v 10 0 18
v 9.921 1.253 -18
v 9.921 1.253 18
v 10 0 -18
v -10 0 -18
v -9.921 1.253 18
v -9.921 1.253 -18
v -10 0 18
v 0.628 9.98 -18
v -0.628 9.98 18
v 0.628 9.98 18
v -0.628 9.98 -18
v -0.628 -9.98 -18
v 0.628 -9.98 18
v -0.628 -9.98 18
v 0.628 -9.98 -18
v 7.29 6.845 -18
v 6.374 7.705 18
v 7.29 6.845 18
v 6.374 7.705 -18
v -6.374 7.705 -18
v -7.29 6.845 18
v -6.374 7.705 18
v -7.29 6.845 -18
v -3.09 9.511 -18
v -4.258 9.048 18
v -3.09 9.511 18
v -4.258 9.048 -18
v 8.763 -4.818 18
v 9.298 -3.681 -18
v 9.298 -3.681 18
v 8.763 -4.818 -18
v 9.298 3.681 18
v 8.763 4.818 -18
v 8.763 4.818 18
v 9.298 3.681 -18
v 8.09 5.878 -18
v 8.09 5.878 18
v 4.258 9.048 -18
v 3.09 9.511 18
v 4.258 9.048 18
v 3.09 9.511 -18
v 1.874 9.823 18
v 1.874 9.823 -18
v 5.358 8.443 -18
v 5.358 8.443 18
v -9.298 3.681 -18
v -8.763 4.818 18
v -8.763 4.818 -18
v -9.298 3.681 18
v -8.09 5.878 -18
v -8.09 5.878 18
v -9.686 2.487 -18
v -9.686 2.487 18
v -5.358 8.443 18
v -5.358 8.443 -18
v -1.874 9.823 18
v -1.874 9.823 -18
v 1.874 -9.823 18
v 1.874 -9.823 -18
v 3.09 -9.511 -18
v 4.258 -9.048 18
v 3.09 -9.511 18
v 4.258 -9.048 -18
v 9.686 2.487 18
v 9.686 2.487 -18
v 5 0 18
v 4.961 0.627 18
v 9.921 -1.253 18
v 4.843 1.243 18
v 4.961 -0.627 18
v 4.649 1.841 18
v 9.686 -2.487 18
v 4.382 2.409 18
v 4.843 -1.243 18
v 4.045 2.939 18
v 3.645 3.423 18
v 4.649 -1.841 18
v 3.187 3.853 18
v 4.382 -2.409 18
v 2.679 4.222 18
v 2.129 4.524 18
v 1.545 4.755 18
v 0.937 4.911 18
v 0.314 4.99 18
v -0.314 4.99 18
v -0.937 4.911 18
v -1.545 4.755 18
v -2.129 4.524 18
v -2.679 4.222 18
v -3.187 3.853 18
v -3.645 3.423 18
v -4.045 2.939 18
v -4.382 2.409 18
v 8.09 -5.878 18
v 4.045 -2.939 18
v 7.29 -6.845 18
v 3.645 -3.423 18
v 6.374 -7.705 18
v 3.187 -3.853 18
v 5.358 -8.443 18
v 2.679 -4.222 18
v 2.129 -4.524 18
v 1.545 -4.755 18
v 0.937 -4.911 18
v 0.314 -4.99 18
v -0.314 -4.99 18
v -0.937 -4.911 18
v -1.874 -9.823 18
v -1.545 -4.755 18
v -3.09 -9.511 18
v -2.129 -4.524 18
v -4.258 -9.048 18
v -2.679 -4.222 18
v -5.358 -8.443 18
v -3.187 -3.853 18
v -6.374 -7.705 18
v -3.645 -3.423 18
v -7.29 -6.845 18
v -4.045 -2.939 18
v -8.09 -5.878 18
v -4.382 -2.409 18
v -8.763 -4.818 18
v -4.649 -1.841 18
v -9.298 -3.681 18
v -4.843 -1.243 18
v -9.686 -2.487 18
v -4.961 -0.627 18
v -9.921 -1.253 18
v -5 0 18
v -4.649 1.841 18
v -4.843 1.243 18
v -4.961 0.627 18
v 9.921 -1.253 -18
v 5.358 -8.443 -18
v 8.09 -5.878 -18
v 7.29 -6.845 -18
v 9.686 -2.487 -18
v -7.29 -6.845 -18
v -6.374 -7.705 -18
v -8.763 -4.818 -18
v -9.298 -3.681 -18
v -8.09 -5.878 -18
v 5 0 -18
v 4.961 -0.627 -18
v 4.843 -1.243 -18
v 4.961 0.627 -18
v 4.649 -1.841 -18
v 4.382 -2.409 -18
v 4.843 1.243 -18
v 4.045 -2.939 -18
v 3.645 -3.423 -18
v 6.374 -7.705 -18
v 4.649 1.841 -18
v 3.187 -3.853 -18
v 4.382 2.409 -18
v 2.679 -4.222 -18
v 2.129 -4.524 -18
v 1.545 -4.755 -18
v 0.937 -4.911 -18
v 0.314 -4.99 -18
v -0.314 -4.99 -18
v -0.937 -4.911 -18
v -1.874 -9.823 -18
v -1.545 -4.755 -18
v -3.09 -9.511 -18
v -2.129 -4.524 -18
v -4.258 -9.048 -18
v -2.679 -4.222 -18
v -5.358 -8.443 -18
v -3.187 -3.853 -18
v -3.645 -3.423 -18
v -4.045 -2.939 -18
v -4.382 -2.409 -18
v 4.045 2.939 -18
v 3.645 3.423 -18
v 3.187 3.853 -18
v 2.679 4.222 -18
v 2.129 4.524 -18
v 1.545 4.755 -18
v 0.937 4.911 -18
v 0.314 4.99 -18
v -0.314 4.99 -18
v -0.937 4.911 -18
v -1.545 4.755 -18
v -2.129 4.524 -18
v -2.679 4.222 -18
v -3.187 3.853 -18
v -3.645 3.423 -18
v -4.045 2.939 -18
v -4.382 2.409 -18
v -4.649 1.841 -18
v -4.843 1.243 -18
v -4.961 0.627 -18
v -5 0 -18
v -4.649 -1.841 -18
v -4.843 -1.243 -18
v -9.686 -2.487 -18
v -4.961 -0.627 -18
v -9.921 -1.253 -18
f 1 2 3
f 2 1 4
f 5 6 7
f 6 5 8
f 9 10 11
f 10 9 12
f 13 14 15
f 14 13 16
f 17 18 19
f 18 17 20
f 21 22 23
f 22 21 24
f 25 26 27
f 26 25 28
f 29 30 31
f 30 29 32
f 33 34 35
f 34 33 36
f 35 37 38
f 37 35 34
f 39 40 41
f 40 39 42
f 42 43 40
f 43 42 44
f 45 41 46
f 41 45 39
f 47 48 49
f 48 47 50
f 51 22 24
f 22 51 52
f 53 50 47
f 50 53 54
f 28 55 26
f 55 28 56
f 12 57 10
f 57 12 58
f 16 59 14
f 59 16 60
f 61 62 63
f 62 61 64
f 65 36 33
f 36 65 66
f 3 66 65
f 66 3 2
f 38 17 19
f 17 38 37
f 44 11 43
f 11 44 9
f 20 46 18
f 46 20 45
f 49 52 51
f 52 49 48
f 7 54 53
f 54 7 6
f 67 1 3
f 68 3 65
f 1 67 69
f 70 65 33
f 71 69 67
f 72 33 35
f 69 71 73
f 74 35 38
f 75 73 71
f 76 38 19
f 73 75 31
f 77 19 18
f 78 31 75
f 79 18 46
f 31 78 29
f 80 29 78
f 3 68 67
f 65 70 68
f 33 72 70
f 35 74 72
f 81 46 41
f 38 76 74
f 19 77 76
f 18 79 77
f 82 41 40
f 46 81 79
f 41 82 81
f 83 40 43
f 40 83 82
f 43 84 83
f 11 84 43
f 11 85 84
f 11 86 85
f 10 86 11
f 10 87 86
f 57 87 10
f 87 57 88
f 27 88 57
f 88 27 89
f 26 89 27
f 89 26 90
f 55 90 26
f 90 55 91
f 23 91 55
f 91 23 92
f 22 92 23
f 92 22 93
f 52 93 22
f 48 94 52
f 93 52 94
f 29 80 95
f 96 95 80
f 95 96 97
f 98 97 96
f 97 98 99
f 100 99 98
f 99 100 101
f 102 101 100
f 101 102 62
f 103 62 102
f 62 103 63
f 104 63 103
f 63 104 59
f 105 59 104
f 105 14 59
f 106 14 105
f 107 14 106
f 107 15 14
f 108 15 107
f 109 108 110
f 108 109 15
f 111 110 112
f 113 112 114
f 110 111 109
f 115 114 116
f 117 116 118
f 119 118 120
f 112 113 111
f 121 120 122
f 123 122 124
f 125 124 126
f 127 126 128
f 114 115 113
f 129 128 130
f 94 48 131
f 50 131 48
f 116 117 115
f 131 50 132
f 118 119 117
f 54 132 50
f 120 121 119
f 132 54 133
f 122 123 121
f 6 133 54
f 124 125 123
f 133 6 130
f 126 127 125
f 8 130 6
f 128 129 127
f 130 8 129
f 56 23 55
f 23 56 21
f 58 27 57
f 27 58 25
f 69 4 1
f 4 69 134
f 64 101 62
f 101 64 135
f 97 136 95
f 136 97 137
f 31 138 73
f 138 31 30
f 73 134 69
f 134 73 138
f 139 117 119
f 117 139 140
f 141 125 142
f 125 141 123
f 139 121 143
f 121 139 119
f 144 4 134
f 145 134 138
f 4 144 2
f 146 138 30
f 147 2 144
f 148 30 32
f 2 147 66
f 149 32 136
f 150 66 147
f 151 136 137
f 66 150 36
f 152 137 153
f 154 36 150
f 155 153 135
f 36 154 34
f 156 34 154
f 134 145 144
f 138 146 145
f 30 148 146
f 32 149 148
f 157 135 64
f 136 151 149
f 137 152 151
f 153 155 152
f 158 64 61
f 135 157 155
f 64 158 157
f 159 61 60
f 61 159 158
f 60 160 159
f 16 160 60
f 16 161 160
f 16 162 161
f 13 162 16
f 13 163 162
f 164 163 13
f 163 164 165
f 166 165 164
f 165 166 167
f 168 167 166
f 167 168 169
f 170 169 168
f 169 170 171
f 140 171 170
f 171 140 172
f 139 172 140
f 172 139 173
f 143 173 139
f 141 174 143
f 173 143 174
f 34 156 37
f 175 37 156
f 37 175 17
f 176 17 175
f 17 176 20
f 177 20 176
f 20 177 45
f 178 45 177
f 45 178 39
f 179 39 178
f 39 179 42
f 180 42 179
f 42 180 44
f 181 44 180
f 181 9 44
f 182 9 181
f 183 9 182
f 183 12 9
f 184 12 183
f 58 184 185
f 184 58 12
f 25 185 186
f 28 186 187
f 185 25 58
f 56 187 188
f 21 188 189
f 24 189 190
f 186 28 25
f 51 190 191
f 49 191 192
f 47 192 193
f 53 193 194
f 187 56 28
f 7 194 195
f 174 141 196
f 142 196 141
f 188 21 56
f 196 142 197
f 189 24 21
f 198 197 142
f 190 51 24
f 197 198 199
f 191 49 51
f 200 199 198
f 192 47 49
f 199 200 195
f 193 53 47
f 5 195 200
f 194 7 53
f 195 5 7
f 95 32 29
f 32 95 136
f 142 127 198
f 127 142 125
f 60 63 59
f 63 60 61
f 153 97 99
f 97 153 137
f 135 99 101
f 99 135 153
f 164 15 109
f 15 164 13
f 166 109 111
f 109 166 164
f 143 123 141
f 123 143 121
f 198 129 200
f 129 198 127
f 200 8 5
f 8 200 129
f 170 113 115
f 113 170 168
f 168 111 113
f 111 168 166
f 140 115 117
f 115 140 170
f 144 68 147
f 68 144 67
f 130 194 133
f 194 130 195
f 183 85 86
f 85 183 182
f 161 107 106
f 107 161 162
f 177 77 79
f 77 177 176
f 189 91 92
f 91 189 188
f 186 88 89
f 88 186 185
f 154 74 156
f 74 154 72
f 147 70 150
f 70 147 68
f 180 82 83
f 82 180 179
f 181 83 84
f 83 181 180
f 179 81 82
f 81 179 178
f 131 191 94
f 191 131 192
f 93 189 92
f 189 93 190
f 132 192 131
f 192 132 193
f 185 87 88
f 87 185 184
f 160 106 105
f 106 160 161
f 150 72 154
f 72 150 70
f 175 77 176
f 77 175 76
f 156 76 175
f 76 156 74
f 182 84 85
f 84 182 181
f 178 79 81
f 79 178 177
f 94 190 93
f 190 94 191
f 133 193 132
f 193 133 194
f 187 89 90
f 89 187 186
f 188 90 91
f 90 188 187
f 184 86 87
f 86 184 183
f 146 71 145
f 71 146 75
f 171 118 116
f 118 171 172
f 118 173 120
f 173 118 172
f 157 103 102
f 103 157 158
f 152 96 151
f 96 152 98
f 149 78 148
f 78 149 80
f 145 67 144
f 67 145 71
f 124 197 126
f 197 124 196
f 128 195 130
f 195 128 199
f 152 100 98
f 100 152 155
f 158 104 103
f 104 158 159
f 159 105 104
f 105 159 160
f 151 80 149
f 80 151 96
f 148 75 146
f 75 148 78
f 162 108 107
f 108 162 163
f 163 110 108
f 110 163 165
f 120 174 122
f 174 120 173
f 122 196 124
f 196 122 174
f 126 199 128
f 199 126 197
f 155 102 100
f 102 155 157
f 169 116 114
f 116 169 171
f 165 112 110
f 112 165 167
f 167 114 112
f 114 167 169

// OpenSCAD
$fn = 50;


difference() {
	union() {
		translate(v = [0, 0, -18.0000000000]) {
			cylinder(h = 36, r = 10.0000000000);
		}
	}
	union() {
		translate(v = [0, 0, -100.0000000000]) {
			cylinder(h = 200, r = 5.0000000000);
		}
	}
}
